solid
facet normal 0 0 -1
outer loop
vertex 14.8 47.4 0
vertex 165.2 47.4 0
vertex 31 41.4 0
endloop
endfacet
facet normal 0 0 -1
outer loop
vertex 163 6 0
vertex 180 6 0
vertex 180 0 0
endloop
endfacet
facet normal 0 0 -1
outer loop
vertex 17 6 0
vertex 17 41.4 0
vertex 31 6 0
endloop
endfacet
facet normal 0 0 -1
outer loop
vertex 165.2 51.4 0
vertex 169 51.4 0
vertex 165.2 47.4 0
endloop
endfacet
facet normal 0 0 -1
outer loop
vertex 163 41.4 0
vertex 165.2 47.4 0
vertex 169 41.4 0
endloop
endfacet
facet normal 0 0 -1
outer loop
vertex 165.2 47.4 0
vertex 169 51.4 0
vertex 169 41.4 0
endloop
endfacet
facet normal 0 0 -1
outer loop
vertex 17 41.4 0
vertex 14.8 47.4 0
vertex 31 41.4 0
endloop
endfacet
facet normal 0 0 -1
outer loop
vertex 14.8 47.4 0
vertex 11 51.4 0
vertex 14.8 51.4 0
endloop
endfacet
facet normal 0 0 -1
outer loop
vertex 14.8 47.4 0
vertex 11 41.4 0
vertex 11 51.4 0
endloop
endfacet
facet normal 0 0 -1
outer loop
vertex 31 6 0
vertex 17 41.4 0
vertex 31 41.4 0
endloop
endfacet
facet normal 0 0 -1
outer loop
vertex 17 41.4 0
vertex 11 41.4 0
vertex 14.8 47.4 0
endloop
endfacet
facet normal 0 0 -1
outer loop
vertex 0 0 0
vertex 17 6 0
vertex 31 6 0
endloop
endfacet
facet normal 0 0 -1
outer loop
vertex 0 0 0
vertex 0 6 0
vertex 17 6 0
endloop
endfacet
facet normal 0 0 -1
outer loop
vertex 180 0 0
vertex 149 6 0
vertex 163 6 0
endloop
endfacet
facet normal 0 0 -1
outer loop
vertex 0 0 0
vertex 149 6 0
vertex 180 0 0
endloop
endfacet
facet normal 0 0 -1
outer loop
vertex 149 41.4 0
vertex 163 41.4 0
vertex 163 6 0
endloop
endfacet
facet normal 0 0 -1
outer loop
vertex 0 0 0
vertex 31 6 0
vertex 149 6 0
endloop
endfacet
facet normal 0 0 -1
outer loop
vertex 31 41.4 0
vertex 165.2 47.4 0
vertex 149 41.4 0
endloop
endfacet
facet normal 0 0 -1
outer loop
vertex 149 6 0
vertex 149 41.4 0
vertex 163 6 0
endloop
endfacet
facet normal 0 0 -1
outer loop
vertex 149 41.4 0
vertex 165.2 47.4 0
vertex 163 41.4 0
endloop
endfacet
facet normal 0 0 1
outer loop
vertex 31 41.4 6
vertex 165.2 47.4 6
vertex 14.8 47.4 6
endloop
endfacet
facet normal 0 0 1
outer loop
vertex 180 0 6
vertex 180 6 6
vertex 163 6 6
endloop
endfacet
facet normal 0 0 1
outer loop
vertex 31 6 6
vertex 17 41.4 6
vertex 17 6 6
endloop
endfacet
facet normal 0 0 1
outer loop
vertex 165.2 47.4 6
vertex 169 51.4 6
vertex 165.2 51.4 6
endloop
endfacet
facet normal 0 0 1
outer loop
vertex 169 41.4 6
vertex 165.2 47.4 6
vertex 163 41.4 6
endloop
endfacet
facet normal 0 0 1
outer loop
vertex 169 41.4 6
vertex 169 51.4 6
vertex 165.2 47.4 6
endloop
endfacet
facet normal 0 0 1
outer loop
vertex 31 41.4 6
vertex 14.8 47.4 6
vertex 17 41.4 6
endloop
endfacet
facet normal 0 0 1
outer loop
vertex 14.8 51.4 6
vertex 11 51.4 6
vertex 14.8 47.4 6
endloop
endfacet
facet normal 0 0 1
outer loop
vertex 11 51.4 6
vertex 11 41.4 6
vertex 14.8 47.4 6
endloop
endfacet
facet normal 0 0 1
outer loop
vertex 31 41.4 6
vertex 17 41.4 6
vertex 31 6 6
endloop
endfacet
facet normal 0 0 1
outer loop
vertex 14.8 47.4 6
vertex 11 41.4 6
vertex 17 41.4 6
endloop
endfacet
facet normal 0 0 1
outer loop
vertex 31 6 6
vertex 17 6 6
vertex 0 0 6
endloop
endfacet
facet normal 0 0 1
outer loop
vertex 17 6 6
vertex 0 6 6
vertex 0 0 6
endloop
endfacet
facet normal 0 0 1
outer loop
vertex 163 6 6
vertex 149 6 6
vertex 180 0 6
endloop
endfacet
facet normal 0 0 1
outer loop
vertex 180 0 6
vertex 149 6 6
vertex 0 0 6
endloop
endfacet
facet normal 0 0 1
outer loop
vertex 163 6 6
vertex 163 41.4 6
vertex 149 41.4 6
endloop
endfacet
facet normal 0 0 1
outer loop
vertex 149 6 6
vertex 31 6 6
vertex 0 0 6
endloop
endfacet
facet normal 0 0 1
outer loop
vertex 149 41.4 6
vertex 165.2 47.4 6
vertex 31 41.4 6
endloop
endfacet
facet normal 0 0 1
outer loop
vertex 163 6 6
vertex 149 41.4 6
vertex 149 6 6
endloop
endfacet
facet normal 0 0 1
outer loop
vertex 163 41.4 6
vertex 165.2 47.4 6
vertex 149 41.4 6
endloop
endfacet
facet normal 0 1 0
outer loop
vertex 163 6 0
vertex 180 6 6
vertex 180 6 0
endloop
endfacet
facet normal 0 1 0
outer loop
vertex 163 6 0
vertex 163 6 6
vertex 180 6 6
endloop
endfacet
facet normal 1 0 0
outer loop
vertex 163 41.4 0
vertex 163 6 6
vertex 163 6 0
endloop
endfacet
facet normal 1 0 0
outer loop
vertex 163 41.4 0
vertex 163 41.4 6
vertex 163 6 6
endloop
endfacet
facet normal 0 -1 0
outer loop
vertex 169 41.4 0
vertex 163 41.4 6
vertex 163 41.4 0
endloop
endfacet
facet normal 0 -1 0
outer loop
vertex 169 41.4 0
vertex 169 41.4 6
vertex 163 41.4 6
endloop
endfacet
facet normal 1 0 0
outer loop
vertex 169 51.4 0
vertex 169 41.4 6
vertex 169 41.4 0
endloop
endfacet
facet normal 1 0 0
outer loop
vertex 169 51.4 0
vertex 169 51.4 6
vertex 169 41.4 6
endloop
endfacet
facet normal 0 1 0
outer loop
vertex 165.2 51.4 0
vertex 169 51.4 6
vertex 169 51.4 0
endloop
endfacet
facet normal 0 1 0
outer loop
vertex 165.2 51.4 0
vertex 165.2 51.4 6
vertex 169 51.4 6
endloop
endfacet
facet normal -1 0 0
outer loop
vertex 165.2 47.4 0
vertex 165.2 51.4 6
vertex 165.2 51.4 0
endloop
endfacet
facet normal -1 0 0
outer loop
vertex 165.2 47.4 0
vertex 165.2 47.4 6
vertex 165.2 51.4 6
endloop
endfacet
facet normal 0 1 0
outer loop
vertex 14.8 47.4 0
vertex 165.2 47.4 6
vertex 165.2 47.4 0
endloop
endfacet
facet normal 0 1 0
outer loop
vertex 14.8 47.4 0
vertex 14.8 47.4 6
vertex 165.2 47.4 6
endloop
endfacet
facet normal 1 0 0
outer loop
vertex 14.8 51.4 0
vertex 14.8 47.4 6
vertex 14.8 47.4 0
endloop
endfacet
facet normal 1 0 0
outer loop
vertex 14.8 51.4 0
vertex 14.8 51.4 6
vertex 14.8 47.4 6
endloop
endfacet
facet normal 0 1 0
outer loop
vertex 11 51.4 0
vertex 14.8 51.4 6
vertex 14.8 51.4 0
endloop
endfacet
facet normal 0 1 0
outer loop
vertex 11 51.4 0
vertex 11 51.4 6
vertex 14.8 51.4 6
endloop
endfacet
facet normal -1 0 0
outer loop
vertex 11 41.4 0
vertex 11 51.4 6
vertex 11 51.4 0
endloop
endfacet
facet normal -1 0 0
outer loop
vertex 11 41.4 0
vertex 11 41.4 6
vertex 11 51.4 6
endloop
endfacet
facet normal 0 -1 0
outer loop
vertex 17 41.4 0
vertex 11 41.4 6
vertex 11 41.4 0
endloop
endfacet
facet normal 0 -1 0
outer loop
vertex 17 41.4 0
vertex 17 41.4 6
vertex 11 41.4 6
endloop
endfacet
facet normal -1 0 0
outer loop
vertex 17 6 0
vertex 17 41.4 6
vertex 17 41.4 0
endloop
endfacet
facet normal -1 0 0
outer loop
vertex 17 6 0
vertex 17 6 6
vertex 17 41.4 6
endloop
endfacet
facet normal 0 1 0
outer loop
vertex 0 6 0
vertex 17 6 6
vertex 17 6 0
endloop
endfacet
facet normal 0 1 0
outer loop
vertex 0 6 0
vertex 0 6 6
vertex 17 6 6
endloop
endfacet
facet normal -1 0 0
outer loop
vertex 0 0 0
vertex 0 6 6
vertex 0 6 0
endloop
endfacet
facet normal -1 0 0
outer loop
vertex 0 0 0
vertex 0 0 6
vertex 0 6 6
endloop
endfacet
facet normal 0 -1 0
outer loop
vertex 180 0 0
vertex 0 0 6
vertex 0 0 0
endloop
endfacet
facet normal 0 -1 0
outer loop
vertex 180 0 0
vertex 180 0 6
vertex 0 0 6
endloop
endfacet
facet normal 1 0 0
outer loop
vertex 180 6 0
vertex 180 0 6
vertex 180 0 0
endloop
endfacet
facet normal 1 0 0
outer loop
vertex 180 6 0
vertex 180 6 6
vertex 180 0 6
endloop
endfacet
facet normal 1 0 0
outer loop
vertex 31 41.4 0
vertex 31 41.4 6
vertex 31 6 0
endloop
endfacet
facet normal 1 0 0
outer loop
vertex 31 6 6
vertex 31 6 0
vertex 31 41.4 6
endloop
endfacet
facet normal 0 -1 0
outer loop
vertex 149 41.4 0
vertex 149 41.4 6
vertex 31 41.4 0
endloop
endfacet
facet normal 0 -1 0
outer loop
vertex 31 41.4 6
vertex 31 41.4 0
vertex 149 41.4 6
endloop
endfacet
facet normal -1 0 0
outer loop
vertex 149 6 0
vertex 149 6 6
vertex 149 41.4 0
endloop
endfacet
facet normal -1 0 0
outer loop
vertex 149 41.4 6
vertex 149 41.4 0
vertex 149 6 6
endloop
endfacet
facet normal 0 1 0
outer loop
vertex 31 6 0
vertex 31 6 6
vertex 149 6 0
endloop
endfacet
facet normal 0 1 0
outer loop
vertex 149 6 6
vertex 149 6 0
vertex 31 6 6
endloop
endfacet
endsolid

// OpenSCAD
linear_extrude(6) difference(){ polygon([[0.0, 0], [180.0, 0], [180.0, 6], [163.0, 6], [163.0, 41.4], [169.0, 41.4], [169.0, 51.4], [165.2, 51.4], [165.2, 47.4], [14.799999999999997, 47.4], [14.799999999999997, 51.4], [11.0, 51.4], [11.0, 41.4], [17.0, 41.4], [17.0, 6], [0.0, 6]]);polygon([[31.0, 6], [149.0, 6], [149.0, 41.4], [31.0, 41.4]]);}
